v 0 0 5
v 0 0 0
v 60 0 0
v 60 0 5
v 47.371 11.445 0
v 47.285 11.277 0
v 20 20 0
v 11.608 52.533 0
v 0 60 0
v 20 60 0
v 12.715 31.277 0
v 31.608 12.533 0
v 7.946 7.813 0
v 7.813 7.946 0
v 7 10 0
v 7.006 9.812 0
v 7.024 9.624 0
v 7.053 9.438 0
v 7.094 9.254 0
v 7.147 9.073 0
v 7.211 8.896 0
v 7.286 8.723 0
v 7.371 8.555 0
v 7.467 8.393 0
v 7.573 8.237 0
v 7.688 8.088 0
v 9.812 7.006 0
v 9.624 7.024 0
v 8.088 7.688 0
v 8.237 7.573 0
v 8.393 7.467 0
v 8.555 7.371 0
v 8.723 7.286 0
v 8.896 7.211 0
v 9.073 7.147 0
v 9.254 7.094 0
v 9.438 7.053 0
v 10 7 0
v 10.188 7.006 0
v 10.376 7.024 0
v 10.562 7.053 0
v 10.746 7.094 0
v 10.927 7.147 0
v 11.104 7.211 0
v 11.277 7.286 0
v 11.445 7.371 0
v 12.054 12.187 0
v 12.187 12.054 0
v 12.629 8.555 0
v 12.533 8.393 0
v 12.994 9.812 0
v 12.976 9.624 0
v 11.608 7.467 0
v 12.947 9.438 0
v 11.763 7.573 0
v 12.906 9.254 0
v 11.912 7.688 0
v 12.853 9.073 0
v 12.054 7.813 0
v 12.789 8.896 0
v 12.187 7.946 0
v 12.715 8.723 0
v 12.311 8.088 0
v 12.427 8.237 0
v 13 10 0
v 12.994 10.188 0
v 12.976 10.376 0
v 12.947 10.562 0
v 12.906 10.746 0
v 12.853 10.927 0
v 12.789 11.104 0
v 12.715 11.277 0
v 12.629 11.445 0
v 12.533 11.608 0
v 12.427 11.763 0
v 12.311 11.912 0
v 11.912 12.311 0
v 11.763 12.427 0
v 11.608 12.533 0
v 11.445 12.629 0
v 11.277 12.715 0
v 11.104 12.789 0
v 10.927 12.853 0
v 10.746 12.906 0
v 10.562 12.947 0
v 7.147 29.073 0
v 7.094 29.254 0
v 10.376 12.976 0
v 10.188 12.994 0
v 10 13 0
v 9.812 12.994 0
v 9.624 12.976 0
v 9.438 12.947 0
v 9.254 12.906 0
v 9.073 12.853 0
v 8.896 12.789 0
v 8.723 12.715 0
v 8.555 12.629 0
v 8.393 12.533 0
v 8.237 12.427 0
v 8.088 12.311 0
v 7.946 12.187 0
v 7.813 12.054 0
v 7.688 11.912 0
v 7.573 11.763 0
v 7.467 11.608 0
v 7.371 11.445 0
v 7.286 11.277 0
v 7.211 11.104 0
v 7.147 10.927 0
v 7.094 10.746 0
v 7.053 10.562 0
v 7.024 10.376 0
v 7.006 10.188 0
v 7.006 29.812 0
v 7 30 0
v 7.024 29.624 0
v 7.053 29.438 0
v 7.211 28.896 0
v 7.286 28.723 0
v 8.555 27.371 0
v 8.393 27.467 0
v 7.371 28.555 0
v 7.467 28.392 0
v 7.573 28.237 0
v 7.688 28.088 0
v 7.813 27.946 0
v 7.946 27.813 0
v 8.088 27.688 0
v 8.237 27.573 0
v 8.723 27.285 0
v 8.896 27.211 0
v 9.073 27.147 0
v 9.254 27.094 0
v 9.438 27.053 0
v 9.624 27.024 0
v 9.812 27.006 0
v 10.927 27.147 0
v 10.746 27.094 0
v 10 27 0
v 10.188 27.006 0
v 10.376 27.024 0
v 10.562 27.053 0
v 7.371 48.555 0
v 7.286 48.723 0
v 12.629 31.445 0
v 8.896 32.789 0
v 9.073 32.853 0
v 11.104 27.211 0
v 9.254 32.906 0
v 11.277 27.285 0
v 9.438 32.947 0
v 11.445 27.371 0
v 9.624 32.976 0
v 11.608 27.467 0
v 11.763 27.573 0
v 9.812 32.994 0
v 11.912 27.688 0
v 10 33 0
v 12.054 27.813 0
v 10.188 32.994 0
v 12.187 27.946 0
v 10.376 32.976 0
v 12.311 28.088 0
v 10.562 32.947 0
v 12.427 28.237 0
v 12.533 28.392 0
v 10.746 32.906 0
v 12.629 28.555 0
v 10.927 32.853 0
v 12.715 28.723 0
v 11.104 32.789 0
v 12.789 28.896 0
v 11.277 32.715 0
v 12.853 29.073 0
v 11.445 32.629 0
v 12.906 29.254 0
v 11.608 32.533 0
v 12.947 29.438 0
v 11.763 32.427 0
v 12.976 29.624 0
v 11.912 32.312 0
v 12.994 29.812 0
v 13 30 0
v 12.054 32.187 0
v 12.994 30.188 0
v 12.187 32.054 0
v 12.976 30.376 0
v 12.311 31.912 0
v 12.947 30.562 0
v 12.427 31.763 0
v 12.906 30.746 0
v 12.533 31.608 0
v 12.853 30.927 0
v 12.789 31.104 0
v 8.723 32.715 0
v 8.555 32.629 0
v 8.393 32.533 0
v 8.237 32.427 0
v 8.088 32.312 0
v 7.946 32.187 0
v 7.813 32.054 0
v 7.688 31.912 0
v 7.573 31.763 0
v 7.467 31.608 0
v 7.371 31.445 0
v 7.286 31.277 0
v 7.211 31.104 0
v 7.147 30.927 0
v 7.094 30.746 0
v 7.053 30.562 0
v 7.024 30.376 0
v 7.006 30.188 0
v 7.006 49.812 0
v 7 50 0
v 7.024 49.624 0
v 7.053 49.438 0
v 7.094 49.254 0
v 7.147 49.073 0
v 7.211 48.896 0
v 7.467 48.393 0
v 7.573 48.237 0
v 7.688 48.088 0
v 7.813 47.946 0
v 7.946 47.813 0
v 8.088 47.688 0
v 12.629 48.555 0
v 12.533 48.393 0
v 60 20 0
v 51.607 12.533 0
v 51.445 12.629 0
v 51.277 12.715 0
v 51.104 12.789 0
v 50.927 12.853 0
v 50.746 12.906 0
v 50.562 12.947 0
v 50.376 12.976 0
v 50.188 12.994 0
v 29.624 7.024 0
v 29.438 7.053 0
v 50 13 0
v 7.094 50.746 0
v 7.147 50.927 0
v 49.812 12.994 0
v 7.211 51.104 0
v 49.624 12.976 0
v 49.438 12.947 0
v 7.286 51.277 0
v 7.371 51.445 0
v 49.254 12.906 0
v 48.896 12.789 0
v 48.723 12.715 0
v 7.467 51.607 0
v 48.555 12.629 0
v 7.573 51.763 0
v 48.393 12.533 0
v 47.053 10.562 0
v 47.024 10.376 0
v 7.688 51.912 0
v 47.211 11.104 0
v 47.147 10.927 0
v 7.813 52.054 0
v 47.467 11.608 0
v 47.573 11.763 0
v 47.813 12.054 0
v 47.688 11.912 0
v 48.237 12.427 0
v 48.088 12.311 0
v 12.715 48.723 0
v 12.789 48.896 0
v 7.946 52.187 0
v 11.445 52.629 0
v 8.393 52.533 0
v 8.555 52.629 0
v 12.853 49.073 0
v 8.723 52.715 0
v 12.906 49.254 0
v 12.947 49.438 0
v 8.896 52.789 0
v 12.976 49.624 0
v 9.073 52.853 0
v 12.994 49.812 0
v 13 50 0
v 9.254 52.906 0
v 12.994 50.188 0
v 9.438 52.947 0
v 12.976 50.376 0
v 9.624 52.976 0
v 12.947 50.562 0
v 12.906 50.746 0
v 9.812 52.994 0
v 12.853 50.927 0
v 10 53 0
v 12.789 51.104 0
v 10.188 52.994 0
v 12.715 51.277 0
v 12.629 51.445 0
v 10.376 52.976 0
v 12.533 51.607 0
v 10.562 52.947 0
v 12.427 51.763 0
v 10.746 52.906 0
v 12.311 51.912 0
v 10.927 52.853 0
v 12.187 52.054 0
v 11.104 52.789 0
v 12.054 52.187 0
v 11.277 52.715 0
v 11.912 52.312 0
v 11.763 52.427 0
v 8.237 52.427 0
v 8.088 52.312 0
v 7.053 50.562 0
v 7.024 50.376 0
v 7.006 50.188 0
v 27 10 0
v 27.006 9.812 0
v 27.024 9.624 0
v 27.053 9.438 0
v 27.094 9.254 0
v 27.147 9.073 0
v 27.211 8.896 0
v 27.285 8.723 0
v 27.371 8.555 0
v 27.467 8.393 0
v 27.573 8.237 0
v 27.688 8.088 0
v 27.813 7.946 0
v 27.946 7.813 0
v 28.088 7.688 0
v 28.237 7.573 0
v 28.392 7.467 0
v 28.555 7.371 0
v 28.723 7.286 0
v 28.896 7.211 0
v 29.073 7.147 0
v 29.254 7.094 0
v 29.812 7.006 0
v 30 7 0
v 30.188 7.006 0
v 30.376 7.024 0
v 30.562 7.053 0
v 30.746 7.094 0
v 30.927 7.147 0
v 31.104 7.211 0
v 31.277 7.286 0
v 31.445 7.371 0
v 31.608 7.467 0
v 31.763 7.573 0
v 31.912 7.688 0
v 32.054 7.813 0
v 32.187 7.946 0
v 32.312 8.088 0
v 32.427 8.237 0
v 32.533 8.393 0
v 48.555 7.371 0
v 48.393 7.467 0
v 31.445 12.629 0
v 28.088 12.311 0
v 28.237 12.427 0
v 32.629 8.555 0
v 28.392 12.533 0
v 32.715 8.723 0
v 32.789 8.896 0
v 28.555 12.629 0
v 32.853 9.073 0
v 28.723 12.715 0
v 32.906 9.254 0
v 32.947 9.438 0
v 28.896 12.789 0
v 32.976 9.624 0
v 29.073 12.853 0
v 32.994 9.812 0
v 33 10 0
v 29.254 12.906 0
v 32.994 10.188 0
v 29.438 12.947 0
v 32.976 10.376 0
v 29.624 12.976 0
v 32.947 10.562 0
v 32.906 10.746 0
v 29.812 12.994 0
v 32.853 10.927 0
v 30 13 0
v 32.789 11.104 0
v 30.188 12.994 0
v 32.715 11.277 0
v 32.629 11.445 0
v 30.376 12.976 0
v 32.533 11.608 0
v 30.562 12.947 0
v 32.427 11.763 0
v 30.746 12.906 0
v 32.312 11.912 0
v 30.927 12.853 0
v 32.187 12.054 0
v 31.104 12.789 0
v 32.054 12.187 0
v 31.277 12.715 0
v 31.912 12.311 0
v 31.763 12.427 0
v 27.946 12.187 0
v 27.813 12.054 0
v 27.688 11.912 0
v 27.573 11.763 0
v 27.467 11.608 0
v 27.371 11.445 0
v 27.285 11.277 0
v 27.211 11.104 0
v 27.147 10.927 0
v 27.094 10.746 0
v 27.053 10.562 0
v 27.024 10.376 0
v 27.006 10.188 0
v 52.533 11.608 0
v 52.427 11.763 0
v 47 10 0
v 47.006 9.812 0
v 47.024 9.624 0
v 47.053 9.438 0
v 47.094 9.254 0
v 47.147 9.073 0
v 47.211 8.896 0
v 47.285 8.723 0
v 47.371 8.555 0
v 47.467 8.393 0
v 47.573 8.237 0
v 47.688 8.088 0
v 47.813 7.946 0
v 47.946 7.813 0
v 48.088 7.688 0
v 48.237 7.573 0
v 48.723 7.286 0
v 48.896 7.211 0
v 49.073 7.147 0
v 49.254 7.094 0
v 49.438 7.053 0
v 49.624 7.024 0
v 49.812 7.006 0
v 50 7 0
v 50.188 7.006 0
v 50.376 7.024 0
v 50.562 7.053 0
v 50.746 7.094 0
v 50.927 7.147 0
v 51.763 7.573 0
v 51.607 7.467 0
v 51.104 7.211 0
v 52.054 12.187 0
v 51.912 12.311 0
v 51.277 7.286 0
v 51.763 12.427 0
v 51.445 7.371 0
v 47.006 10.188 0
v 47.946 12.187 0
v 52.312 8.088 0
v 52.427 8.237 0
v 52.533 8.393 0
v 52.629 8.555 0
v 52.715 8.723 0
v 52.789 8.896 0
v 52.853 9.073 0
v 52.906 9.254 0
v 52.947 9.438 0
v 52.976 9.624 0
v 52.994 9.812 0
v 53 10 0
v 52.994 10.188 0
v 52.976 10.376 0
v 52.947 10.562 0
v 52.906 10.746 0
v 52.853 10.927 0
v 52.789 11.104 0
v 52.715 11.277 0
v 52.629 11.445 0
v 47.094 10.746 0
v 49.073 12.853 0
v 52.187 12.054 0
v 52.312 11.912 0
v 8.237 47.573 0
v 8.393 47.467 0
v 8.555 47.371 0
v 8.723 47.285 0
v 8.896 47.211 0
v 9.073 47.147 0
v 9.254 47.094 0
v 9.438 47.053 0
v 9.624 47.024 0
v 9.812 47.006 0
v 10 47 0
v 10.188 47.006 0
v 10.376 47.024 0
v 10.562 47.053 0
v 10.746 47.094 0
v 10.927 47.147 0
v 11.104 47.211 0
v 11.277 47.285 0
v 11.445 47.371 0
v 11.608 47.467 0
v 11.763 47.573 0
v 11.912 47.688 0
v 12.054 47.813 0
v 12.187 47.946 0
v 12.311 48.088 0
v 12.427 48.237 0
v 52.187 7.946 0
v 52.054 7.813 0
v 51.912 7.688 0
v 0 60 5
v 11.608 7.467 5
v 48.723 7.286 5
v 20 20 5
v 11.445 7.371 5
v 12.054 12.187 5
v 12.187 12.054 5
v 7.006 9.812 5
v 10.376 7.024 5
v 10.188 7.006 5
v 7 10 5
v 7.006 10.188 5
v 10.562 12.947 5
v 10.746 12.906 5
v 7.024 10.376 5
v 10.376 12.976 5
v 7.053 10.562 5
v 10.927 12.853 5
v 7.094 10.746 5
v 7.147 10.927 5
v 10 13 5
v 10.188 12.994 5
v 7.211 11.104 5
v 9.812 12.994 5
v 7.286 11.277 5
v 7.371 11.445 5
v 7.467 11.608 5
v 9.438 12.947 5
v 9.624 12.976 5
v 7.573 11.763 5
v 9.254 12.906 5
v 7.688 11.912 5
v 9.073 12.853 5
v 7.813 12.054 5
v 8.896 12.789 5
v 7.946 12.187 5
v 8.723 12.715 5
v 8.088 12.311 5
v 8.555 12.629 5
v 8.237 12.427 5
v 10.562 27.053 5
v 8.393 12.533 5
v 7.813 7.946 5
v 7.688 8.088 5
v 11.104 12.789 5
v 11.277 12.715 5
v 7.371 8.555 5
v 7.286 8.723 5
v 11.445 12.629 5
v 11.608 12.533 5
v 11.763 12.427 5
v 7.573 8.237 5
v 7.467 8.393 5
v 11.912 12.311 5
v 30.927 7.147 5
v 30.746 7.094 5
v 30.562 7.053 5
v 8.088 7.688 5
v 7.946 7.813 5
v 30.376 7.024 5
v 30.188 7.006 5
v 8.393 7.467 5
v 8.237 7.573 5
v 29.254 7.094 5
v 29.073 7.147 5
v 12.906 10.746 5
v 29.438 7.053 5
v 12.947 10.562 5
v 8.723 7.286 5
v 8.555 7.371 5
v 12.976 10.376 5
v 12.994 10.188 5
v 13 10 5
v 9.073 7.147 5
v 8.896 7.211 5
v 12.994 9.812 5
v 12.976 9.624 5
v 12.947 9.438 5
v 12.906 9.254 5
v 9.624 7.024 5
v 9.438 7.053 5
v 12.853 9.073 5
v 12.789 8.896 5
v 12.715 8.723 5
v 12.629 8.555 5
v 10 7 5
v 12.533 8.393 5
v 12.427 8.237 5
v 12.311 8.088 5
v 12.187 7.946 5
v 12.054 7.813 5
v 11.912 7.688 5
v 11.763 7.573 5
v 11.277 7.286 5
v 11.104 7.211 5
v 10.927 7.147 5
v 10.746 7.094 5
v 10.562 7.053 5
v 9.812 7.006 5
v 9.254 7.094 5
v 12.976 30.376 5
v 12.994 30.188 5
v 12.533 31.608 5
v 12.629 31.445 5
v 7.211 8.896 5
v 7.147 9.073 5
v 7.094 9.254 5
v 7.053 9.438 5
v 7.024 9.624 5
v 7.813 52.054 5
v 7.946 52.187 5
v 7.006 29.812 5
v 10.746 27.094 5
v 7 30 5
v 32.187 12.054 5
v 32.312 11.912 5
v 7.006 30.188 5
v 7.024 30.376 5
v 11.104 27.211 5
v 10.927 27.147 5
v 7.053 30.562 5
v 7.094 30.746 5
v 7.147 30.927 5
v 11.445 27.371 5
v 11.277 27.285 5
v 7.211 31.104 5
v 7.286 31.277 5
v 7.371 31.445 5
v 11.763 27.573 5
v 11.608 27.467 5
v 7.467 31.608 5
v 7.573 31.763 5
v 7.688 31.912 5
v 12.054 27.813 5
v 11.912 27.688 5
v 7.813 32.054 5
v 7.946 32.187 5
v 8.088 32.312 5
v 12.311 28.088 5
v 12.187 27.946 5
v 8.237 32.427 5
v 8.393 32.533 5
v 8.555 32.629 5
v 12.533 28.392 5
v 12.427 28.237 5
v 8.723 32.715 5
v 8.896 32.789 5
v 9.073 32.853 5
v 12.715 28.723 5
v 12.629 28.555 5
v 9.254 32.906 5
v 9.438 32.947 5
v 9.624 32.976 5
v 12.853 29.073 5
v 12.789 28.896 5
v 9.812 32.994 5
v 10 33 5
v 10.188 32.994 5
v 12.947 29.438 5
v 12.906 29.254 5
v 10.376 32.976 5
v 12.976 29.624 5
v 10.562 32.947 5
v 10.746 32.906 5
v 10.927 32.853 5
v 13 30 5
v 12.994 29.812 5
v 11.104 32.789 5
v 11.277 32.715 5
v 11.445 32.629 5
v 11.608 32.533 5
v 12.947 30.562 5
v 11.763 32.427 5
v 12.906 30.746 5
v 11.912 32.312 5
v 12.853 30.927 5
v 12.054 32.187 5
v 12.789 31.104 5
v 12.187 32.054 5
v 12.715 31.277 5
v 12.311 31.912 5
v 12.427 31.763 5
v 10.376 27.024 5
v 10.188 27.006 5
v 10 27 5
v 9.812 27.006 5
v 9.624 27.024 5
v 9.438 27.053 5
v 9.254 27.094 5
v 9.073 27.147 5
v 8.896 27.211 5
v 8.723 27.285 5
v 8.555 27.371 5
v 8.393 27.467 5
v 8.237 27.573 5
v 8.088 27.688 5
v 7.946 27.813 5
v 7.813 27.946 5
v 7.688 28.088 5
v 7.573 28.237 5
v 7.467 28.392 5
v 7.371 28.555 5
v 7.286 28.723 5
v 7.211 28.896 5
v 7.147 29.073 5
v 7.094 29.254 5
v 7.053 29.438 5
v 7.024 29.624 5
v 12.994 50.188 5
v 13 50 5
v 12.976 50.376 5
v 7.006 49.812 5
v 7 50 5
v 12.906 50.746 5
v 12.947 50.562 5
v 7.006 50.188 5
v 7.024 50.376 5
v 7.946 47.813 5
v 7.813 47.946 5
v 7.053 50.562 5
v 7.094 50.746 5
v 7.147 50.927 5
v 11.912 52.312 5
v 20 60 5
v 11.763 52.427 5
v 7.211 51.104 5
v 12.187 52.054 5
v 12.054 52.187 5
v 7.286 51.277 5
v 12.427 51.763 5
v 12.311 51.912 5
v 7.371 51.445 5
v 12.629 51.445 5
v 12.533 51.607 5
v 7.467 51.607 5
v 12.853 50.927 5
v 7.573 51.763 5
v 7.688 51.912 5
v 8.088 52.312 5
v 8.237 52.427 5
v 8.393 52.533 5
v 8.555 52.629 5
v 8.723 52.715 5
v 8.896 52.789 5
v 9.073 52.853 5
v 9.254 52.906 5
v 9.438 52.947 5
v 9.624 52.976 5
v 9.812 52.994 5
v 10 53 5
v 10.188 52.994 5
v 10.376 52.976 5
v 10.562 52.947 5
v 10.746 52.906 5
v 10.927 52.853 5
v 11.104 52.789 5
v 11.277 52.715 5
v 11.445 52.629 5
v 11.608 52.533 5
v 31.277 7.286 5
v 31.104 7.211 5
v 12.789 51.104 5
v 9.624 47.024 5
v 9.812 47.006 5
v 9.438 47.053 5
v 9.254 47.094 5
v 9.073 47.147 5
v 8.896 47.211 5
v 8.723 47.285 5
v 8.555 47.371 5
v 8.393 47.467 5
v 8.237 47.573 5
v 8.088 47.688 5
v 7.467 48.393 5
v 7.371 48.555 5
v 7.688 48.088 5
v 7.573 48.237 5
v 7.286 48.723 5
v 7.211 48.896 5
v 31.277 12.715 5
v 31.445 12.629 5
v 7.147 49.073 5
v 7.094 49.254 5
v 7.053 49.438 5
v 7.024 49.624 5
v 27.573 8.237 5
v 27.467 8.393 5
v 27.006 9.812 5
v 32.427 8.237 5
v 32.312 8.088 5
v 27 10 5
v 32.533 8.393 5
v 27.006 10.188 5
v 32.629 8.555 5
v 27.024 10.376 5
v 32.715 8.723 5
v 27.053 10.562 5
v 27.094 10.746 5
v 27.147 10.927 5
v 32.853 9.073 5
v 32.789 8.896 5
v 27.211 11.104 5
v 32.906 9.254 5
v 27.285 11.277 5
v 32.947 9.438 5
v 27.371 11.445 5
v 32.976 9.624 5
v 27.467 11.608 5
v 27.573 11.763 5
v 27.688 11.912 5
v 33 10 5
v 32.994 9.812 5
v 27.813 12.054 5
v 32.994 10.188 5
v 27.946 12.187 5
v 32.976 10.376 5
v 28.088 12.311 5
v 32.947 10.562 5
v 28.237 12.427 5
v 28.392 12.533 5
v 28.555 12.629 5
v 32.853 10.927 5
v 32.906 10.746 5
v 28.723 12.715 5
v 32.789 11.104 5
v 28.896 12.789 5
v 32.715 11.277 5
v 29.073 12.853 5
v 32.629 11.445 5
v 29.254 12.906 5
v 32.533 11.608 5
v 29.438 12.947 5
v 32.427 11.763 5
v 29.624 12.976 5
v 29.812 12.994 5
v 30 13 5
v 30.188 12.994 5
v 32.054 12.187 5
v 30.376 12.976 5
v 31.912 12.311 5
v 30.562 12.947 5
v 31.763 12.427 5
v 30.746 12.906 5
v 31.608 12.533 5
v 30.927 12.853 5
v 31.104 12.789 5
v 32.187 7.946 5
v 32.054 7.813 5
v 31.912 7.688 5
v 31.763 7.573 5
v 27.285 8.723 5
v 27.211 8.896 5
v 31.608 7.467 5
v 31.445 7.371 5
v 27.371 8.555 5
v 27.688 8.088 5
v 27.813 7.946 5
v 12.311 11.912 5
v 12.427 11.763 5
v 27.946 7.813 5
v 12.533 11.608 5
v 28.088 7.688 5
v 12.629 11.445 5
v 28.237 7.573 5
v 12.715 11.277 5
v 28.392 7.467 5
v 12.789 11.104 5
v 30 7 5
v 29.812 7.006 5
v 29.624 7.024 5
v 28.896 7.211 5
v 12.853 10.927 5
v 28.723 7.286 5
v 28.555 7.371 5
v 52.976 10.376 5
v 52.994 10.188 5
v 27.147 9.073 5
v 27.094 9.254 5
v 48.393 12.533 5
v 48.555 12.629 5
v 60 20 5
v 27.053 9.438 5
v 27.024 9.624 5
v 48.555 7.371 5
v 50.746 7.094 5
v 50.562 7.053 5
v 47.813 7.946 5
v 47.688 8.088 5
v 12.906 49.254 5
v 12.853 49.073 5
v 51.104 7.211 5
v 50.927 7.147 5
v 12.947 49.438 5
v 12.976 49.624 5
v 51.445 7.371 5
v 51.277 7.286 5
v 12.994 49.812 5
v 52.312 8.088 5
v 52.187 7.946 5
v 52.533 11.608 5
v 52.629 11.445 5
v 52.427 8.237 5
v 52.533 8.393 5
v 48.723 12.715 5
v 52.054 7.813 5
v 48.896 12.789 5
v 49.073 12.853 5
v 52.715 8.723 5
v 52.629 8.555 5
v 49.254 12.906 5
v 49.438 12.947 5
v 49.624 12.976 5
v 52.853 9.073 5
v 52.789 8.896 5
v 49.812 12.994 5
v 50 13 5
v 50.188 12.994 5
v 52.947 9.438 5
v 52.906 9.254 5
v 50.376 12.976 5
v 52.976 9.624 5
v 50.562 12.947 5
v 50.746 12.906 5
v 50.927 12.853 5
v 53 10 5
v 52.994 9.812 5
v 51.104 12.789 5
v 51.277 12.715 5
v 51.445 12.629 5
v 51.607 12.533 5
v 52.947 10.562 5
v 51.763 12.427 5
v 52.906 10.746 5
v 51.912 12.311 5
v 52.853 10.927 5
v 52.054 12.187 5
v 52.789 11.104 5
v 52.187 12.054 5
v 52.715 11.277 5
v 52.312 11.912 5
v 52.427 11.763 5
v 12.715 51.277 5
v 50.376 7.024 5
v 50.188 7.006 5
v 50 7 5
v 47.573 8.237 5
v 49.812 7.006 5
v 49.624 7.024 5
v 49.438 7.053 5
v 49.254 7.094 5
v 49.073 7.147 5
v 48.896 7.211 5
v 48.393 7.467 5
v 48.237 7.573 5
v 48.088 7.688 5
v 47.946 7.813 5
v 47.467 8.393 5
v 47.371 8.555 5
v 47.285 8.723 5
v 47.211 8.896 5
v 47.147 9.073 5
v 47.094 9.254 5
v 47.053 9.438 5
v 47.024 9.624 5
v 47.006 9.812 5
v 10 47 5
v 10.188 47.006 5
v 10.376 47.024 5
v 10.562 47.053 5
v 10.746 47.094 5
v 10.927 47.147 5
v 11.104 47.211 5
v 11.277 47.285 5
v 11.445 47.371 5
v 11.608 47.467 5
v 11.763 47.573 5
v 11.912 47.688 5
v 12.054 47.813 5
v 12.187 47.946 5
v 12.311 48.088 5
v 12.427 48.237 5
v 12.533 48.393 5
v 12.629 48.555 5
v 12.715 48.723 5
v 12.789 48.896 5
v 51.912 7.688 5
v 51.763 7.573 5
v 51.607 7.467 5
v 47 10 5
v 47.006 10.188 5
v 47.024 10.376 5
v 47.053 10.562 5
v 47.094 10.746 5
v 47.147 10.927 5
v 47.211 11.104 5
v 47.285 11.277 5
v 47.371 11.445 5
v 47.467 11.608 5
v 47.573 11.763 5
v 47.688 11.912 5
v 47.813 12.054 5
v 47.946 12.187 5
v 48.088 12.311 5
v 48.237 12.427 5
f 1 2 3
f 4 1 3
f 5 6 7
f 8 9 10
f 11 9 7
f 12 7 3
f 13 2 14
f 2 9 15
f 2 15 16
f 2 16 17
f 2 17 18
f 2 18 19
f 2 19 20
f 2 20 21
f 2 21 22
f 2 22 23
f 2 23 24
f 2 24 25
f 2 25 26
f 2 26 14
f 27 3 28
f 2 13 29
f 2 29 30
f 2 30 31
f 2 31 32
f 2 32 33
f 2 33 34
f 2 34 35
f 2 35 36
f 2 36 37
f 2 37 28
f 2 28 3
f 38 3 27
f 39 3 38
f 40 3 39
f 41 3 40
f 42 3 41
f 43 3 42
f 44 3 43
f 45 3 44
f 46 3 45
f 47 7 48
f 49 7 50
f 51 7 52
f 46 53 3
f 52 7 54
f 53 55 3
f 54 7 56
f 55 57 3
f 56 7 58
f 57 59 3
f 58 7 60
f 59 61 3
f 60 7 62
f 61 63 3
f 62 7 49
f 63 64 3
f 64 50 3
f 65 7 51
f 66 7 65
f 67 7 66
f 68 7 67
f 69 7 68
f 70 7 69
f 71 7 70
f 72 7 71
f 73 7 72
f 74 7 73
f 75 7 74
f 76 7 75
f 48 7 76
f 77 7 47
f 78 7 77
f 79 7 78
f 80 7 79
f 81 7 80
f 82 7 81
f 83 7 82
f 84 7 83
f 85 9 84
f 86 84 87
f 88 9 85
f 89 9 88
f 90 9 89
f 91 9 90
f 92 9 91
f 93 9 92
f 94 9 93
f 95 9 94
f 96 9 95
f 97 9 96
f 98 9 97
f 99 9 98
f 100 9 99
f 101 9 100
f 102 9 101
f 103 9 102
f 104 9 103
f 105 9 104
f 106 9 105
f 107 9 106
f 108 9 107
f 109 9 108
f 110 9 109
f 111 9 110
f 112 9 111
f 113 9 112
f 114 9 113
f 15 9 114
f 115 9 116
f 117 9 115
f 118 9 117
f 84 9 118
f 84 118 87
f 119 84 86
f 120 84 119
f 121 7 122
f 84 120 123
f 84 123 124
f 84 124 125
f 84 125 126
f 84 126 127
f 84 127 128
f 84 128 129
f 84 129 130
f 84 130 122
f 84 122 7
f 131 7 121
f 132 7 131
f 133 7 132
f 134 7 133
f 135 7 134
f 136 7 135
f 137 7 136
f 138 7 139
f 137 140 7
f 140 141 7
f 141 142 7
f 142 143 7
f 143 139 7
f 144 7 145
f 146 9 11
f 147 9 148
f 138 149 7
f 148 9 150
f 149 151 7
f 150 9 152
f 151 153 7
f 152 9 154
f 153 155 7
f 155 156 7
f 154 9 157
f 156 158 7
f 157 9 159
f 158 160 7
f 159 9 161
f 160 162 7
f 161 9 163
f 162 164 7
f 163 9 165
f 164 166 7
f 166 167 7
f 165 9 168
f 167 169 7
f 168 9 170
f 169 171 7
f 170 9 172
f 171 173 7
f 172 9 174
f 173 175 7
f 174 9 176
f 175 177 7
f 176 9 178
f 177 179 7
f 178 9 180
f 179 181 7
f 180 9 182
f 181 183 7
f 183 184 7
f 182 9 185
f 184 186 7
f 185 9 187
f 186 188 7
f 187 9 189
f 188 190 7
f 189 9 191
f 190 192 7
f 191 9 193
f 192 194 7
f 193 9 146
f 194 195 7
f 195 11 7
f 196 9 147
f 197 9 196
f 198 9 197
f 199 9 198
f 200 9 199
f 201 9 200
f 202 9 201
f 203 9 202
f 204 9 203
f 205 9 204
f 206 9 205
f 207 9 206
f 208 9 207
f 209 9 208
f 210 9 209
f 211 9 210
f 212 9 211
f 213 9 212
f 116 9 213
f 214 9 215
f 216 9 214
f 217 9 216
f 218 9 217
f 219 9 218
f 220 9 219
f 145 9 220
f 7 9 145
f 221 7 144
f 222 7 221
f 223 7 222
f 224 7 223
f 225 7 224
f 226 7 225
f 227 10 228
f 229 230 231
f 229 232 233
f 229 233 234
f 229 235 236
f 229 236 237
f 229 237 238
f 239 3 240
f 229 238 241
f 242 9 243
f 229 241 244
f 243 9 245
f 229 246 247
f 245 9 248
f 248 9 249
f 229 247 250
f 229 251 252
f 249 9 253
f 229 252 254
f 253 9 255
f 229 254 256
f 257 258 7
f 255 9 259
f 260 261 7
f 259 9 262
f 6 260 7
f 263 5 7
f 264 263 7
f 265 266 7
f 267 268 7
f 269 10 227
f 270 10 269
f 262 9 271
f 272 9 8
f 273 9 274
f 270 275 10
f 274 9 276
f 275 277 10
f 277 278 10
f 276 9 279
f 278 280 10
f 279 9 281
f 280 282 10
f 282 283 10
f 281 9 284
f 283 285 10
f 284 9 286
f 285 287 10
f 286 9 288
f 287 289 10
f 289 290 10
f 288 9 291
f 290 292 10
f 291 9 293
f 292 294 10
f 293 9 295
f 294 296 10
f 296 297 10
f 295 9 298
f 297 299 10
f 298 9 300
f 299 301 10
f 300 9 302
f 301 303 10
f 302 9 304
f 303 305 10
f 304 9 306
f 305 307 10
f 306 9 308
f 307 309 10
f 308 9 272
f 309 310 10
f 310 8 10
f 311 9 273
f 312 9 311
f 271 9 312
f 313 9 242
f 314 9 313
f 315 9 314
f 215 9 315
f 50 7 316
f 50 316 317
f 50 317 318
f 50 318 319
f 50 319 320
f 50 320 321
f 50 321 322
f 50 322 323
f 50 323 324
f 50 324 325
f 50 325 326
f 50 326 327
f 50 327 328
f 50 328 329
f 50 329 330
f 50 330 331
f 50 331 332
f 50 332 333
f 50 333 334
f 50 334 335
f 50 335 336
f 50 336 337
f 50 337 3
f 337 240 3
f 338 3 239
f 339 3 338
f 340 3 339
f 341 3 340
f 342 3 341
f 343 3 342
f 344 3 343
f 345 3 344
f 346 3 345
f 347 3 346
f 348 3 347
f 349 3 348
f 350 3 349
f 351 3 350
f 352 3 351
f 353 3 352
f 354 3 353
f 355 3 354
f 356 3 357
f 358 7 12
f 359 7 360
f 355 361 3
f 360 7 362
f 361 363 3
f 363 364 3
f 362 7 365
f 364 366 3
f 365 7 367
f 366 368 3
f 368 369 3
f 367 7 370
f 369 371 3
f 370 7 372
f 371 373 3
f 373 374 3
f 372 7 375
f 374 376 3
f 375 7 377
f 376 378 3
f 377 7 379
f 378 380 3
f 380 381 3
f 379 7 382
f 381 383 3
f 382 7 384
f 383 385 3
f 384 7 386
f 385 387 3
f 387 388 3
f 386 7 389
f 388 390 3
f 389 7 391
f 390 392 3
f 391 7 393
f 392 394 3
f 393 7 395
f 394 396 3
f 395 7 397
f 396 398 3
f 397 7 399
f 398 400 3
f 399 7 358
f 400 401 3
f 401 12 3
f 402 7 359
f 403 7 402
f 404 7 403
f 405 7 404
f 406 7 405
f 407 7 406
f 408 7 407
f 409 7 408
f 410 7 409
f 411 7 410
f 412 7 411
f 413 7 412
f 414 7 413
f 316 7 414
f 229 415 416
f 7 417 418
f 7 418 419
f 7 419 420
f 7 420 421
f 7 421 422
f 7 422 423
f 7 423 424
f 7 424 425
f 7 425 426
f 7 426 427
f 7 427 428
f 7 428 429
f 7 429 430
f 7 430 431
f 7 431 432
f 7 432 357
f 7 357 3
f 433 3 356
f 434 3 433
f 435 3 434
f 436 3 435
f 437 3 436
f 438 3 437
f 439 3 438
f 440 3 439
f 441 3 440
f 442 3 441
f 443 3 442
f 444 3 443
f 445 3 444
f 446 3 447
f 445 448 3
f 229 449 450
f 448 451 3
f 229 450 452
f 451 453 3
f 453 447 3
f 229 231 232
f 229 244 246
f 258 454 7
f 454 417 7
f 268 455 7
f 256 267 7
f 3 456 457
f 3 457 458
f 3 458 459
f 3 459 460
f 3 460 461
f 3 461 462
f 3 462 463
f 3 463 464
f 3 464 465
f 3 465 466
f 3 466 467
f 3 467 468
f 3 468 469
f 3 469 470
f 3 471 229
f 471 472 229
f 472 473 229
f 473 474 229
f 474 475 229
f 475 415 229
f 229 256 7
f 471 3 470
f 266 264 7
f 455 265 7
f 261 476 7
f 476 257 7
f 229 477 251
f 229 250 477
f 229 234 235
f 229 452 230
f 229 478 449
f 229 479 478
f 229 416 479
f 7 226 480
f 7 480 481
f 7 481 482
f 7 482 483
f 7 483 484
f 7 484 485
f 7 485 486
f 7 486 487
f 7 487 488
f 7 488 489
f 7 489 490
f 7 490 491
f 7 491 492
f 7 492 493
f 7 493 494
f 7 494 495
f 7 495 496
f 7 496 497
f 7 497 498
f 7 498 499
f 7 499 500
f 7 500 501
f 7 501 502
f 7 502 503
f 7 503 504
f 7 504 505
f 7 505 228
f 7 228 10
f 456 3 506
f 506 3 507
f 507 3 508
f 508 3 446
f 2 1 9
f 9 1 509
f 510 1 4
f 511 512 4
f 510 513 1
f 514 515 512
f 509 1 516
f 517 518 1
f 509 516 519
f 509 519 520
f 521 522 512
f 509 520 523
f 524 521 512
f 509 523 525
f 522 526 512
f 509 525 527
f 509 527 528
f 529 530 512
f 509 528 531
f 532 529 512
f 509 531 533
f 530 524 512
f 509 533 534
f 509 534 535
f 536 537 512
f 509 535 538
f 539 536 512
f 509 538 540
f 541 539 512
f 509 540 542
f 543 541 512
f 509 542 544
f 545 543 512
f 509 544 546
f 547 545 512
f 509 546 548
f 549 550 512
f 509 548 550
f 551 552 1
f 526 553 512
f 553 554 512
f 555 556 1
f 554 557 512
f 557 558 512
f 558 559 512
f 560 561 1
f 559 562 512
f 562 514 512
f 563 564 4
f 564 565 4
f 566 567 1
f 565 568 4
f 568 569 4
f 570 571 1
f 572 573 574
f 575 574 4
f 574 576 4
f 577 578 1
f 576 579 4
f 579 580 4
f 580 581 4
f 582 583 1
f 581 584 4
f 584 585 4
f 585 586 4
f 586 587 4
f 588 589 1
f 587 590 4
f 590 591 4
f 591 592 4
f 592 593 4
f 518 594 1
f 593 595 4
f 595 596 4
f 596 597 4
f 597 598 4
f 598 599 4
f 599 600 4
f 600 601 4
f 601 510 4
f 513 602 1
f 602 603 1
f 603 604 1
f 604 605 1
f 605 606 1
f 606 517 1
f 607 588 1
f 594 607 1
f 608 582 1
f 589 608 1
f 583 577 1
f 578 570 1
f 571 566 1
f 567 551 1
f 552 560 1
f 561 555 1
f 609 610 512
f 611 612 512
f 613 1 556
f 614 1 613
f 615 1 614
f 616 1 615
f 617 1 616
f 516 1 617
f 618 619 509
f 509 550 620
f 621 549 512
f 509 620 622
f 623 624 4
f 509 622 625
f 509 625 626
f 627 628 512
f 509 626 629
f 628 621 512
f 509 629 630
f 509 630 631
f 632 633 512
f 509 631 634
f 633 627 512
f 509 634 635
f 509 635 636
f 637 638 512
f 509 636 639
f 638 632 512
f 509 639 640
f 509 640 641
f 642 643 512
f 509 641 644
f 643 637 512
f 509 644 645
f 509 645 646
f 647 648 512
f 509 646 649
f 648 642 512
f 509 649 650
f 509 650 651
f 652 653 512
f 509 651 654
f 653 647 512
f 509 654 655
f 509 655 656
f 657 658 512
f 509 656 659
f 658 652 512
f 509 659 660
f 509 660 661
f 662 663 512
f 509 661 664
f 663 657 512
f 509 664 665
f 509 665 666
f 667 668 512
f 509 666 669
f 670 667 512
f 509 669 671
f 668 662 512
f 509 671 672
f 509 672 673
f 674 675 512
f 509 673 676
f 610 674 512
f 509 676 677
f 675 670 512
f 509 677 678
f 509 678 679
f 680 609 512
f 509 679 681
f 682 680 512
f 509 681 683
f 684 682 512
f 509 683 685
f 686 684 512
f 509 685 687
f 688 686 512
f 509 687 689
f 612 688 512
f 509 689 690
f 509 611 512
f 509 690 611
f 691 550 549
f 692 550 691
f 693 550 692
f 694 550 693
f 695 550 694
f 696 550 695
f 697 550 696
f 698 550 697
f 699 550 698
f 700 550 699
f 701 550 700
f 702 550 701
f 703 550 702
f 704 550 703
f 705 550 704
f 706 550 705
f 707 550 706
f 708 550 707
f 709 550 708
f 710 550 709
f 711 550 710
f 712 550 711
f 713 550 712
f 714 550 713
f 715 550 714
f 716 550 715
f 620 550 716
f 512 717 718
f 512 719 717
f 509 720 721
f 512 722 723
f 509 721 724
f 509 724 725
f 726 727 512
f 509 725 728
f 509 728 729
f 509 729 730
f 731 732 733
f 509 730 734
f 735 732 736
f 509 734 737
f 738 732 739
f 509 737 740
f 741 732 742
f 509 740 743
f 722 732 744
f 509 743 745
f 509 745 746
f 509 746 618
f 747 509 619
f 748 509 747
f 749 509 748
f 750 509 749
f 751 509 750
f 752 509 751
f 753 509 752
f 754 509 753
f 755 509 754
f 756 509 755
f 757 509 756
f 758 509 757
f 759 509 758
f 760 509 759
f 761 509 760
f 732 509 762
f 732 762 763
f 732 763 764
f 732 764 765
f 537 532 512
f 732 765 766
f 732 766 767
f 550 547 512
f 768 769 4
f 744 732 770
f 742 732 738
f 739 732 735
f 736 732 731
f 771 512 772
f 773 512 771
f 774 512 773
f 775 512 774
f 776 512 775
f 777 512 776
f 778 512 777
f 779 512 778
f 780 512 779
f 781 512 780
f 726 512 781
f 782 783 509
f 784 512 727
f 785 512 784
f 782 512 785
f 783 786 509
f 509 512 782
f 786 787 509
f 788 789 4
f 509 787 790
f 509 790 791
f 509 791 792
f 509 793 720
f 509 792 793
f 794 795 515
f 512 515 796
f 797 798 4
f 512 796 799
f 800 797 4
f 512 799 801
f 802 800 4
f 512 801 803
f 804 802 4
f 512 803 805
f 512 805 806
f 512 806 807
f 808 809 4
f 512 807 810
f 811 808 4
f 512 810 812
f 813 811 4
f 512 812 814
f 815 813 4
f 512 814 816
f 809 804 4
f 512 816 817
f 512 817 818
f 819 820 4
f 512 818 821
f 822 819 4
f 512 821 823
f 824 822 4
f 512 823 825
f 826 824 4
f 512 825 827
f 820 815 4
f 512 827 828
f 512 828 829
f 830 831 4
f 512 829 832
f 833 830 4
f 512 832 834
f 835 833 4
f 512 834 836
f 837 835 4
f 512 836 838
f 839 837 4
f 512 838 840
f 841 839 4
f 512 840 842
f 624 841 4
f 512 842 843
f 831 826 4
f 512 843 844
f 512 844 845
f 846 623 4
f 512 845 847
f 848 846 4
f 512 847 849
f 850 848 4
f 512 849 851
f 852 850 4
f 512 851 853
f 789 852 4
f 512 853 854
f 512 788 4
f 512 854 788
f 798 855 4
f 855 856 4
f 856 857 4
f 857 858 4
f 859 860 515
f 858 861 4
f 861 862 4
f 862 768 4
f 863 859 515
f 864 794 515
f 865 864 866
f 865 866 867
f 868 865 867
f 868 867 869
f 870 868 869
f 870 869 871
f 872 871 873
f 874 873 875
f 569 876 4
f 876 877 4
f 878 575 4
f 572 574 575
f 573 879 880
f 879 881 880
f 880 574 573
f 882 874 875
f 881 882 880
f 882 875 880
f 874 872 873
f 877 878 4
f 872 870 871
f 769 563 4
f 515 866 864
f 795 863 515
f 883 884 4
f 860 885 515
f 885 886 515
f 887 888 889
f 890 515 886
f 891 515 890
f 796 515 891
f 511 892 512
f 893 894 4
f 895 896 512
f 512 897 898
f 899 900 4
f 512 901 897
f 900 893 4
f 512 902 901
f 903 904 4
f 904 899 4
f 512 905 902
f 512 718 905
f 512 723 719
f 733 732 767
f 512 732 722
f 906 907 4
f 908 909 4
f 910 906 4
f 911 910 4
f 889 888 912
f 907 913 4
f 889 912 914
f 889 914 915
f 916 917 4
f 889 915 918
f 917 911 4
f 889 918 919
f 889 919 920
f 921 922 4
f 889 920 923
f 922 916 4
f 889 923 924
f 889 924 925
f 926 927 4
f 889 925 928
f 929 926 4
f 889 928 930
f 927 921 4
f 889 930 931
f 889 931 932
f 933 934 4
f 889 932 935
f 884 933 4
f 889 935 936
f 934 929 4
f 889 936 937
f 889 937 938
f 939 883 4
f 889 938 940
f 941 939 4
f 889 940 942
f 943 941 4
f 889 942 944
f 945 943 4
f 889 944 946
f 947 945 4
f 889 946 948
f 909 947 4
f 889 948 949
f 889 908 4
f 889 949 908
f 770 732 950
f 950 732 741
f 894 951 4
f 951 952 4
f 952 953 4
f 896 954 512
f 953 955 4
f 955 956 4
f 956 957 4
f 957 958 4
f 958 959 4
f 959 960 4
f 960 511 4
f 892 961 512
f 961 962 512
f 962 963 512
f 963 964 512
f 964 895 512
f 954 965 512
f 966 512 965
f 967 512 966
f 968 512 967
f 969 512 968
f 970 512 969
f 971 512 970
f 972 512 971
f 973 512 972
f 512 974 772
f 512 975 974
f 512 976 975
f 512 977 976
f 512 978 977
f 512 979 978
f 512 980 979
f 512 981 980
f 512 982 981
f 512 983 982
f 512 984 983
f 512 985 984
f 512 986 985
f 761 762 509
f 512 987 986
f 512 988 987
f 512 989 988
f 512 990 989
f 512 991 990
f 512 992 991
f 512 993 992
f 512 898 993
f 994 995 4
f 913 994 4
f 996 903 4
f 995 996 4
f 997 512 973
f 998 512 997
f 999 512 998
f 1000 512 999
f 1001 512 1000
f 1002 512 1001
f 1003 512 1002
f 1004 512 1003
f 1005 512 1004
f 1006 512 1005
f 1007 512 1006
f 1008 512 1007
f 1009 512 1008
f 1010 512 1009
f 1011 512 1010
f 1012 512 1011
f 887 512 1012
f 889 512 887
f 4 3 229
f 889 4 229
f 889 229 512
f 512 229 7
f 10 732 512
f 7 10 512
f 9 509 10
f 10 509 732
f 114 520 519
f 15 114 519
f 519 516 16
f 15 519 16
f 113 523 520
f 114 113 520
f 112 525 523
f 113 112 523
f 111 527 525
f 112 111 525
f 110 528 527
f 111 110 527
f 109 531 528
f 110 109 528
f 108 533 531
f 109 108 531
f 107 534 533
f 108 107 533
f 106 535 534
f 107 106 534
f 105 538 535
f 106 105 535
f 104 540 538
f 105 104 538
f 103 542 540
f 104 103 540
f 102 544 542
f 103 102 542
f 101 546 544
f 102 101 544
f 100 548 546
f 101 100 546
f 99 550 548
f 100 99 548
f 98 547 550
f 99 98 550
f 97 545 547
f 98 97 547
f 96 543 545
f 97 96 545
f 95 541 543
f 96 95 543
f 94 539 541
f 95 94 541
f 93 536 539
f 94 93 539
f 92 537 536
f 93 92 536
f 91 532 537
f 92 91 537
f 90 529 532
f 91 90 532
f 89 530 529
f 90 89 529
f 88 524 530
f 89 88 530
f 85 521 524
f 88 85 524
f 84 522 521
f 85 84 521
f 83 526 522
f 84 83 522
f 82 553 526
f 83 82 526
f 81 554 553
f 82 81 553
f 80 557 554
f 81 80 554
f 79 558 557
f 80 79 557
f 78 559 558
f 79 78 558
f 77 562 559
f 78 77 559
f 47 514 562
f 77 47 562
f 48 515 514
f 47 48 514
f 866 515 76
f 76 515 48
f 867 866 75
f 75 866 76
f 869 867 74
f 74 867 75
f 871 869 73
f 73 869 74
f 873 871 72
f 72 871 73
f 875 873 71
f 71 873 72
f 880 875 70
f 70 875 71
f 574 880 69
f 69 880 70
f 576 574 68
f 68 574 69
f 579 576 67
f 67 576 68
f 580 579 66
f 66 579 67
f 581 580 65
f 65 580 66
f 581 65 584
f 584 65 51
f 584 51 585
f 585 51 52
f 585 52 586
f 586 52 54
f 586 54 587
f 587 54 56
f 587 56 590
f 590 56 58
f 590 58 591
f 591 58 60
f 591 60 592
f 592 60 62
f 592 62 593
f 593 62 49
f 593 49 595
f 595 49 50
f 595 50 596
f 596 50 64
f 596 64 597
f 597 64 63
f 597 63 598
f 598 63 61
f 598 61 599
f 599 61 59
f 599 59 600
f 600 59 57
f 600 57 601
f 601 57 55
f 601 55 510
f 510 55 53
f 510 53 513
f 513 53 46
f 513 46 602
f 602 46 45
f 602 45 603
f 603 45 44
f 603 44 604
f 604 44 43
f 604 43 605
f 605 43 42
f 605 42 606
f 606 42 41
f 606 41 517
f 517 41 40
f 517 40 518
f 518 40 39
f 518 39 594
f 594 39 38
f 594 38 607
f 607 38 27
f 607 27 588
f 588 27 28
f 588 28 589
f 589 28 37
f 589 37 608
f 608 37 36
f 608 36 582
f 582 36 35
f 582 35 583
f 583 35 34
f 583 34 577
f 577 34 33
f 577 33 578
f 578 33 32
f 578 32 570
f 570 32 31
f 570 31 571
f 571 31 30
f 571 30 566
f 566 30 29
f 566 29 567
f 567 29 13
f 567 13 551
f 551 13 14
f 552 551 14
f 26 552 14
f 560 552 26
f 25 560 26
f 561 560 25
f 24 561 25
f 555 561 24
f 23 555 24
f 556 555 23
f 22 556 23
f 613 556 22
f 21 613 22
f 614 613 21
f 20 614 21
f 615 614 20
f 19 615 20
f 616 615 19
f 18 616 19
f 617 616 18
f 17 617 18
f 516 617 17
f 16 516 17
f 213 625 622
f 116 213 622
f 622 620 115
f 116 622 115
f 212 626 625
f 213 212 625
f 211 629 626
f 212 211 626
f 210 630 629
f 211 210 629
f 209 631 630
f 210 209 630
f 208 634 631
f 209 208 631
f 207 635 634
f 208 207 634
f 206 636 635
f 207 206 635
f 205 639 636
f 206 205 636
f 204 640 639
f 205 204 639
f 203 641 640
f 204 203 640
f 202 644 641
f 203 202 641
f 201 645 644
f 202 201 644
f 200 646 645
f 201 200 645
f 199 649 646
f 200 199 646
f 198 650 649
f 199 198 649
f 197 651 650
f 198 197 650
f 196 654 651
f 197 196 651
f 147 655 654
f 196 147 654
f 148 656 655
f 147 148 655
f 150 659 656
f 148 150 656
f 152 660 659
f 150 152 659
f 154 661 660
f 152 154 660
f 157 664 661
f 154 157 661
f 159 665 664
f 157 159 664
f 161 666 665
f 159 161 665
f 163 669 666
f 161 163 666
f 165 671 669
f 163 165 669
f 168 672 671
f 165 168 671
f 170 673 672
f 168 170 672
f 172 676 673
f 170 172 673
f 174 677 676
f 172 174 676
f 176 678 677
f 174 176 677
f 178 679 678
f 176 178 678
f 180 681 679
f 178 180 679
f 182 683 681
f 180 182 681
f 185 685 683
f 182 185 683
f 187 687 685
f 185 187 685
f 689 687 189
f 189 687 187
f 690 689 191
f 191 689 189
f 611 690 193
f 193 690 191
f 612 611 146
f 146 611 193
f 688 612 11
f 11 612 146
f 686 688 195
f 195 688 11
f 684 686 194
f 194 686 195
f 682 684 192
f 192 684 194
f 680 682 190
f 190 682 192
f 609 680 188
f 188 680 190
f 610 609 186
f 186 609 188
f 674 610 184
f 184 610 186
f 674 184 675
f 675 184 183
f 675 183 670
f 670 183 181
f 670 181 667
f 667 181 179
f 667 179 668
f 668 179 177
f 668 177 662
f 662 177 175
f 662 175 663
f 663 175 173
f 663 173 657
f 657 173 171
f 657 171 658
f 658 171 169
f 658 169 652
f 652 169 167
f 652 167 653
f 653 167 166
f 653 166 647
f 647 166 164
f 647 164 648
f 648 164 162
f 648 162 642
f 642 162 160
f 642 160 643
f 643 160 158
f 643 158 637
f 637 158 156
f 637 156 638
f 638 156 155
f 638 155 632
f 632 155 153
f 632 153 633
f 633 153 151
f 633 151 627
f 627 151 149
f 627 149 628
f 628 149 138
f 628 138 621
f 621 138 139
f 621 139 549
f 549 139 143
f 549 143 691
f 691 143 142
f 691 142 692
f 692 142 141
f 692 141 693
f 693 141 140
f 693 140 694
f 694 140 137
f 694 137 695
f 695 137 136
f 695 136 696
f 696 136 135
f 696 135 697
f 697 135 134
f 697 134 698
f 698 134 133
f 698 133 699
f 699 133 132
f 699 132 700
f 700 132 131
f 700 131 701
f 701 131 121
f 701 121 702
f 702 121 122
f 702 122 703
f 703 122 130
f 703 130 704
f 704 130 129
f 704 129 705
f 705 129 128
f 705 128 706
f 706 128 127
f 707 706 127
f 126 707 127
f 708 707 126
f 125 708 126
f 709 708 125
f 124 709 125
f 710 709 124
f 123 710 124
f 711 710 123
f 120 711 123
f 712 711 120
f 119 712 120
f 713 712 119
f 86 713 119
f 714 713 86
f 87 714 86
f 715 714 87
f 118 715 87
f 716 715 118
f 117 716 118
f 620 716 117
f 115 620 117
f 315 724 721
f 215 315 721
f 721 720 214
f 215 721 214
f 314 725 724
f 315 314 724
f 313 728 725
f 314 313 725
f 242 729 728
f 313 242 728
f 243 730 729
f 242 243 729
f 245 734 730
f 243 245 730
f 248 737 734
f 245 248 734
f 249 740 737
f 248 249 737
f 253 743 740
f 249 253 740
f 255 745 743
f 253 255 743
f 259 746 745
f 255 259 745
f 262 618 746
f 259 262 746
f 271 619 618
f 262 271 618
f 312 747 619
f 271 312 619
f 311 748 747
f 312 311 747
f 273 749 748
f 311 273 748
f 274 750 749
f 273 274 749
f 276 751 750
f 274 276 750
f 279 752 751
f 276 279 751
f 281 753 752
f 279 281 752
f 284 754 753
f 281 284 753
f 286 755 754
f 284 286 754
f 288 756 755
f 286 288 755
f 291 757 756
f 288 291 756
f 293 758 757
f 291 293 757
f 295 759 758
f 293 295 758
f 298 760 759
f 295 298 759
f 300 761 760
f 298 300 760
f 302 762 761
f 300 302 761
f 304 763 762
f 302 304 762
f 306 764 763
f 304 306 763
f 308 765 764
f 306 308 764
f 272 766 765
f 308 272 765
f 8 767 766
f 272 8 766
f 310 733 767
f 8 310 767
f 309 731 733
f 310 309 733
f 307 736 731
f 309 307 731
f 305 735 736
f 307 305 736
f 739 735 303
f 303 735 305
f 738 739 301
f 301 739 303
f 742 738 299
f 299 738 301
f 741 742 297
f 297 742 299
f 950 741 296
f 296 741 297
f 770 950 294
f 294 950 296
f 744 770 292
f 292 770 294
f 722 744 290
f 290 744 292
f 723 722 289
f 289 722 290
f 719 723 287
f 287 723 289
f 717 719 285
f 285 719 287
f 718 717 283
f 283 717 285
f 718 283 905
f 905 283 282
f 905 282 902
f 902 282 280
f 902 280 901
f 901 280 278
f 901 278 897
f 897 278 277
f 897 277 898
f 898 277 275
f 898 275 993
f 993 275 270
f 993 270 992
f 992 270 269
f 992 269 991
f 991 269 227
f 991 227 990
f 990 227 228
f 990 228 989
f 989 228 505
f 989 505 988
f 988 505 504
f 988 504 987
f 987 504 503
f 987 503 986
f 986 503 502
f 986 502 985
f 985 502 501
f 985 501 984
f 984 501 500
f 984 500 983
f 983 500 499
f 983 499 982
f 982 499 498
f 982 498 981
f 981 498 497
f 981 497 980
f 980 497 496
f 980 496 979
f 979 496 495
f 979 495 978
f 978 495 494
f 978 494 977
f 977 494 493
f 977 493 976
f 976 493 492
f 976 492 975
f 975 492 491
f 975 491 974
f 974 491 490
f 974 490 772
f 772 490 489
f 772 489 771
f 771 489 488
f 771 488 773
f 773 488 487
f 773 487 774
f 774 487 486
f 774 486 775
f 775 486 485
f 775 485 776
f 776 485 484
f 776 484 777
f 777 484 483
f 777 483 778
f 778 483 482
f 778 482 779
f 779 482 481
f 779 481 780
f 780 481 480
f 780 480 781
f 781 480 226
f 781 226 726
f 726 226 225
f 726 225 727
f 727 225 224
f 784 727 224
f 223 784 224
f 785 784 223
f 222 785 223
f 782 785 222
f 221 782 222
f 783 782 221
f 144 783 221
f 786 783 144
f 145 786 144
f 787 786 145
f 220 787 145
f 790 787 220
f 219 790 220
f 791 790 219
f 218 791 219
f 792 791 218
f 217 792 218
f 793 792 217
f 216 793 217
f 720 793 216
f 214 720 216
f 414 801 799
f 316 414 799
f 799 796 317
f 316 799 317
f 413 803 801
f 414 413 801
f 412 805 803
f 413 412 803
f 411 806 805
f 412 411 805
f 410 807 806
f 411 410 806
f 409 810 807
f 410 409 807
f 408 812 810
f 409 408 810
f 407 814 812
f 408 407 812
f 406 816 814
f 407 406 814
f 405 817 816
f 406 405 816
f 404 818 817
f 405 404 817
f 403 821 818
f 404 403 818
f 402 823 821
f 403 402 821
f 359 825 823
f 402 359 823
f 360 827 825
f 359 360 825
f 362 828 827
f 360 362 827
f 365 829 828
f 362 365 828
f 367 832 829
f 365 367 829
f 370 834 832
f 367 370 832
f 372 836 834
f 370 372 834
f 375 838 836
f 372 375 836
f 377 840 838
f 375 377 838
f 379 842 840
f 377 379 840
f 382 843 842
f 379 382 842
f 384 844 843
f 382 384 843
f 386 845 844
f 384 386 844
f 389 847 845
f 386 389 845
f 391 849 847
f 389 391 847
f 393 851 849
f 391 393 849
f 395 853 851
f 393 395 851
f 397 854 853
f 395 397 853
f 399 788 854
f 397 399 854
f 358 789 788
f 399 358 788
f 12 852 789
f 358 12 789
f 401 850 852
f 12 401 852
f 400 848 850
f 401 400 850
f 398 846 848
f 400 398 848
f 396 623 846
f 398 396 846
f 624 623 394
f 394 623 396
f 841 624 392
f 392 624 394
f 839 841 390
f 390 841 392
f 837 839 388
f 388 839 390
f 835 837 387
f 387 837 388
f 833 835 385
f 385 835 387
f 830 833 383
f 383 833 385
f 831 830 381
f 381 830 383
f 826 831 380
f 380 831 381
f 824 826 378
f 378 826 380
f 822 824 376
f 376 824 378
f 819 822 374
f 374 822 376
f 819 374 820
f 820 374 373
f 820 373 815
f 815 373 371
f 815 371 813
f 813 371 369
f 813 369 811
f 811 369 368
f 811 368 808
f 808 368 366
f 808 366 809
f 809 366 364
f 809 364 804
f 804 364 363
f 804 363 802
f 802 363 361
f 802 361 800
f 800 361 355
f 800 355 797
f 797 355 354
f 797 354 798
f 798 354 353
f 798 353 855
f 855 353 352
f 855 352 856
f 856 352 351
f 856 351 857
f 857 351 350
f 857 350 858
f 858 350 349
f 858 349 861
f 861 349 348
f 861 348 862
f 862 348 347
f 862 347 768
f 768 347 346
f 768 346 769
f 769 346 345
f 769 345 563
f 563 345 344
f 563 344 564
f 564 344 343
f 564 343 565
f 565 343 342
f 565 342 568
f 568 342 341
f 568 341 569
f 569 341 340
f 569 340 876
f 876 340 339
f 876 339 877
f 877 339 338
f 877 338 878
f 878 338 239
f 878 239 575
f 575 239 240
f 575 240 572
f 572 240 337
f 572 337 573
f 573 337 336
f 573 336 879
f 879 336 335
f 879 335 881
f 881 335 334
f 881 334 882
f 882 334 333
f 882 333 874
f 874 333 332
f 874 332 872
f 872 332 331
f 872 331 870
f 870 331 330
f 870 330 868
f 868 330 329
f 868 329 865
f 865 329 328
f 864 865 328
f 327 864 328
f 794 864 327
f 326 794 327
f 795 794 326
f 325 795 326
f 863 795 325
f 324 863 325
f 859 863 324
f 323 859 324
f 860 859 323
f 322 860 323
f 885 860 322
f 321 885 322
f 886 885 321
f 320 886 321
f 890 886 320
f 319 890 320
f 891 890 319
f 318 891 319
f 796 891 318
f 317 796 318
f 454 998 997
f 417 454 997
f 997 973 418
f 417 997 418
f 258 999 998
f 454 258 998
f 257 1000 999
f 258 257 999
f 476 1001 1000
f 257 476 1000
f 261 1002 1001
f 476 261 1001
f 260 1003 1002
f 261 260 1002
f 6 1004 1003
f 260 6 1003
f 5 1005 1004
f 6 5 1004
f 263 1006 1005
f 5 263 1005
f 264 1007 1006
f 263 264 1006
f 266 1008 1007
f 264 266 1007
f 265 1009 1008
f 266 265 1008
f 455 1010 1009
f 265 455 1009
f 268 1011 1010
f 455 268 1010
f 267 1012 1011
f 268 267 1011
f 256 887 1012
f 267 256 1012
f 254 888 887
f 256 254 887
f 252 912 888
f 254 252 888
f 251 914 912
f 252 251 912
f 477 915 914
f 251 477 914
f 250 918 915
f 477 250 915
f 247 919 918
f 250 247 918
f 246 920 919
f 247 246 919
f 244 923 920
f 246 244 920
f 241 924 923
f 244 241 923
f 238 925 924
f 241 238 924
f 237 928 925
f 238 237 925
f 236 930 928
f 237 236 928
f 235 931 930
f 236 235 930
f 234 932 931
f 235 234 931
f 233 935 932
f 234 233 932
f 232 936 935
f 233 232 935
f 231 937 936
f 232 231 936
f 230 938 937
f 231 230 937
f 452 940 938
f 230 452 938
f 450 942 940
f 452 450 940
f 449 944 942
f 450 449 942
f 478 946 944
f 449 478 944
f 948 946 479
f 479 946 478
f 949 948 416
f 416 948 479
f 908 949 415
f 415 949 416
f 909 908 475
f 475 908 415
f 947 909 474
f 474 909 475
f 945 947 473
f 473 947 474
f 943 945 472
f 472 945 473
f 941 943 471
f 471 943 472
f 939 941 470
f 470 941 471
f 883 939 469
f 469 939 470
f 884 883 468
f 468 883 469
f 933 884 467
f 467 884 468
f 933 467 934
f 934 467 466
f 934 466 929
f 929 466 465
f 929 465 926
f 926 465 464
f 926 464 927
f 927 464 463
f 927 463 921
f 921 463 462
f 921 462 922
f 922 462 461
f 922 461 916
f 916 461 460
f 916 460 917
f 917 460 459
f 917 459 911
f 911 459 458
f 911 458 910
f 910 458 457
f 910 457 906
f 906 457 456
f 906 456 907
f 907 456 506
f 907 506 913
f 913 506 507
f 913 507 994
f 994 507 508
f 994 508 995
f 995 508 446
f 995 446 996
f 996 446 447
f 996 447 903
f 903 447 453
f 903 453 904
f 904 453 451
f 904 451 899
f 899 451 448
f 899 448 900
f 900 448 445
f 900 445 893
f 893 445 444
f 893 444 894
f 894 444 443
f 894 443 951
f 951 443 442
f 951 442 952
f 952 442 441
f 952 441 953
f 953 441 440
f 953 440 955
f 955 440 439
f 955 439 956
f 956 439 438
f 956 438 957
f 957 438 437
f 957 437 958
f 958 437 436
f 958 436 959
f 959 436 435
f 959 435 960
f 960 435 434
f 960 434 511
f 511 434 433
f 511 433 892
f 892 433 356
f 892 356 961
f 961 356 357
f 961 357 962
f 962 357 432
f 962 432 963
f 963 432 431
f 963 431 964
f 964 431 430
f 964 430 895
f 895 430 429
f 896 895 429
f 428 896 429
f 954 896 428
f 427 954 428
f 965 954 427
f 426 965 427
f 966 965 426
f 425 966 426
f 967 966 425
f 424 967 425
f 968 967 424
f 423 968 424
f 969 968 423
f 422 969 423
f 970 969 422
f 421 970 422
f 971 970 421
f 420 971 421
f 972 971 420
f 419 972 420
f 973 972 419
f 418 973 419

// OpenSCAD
espesor = 5;
radio_exteriores = 3;

//translate([8.5,13,espesor]) difference() {cube([48,39,espesor]);
//translate([16.5,12,0]) cylinder(h = espesor, r1 = 3, r2 = 3, $fn=100);
//translate([48-16.5,12,0]) cylinder(h = espesor, r1 = 3, r2 = 3, $fn=100);
//translate([16.5,39-12,0]) cylinder(h = espesor, r1 = 3, r2 = 3, $fn=100);
//translate([48-16.5,39-12,0]) cylinder(h = espesor, r1 = 3, r2 = 3, $fn=100);
//};


difference(){
union(){
translate([0,0,0]) difference() {cube([60,60,espesor]);
    translate([10,10,0]) cylinder(h = espesor, r1 = 3, r2 = 3, $fn=100);
    translate([30,10,0]) cylinder(h = espesor, r1 = 3, r2 = 3, $fn=100);
    translate([50,10,0]) cylinder(h = espesor, r1 = 3, r2 = 3, $fn=100);
    translate([10,30,0]) cylinder(h = espesor, r1 = 3, r2 = 3, $fn=100);
    translate([10,50,0]) cylinder(h = espesor, r1 = 3, r2 = 3, $fn=100);
    
    translate([8.5,13,0]) union(){
    translate([16.5,12,0]) cylinder(h = espesor, r1 = 5, r2 = 5, $fn=100);
    translate([48-16.5,12,0]) cylinder(h = espesor, r1 = 5, r2 = 5, $fn=100);
    translate([16.5,39-12,0]) cylinder(h = espesor, r1 = 5, r2 = 5, $fn=100);
    translate([48-16.5,39-12,0]) cylinder(h = espesor, r1 = 5, r2 = 5, $fn=100);
    };
    };
    
    
translate([0,0,espesor]) difference() {cube([60,60,0]);
    translate([10,10,0]) cylinder(h = 5, r1 = 5.5, r2 = 5.5, $fn=100);
    translate([30,10,0]) cylinder(h = 5, r1 = 5.5, r2 = 5.5, $fn=100);
    translate([50,10,0]) cylinder(h = 5, r1 = 5.5, r2 = 5.5, $fn=100);
    translate([10,30,0]) cylinder(h = 5, r1 = 5.5, r2 = 5.5, $fn=100);
    translate([10,50,0]) cylinder(h = 5, r1 = 5.5, r2 = 5.5, $fn=100);
    
    translate([8.5,13,0]) union(){
    translate([16.5,12,0]) cylinder(h = 5, r1 = 2.5, r2 = 2.5, $fn=100);
    translate([48-16.5,12,0]) cylinder(h = 5, r1 = 2.5, r2 = 2.5, $fn=100);
    translate([16.5,39-12,0]) cylinder(h = 5, r1 = 2.5, r2 = 2.5, $fn=100);
    translate([48-16.5,39-12,0]) cylinder(h = 5, r1 = 2.5, r2 = 2.5, $fn=100);
    };
    };
};    
translate([20,20,0]) cube([40,40,10]);    
};
